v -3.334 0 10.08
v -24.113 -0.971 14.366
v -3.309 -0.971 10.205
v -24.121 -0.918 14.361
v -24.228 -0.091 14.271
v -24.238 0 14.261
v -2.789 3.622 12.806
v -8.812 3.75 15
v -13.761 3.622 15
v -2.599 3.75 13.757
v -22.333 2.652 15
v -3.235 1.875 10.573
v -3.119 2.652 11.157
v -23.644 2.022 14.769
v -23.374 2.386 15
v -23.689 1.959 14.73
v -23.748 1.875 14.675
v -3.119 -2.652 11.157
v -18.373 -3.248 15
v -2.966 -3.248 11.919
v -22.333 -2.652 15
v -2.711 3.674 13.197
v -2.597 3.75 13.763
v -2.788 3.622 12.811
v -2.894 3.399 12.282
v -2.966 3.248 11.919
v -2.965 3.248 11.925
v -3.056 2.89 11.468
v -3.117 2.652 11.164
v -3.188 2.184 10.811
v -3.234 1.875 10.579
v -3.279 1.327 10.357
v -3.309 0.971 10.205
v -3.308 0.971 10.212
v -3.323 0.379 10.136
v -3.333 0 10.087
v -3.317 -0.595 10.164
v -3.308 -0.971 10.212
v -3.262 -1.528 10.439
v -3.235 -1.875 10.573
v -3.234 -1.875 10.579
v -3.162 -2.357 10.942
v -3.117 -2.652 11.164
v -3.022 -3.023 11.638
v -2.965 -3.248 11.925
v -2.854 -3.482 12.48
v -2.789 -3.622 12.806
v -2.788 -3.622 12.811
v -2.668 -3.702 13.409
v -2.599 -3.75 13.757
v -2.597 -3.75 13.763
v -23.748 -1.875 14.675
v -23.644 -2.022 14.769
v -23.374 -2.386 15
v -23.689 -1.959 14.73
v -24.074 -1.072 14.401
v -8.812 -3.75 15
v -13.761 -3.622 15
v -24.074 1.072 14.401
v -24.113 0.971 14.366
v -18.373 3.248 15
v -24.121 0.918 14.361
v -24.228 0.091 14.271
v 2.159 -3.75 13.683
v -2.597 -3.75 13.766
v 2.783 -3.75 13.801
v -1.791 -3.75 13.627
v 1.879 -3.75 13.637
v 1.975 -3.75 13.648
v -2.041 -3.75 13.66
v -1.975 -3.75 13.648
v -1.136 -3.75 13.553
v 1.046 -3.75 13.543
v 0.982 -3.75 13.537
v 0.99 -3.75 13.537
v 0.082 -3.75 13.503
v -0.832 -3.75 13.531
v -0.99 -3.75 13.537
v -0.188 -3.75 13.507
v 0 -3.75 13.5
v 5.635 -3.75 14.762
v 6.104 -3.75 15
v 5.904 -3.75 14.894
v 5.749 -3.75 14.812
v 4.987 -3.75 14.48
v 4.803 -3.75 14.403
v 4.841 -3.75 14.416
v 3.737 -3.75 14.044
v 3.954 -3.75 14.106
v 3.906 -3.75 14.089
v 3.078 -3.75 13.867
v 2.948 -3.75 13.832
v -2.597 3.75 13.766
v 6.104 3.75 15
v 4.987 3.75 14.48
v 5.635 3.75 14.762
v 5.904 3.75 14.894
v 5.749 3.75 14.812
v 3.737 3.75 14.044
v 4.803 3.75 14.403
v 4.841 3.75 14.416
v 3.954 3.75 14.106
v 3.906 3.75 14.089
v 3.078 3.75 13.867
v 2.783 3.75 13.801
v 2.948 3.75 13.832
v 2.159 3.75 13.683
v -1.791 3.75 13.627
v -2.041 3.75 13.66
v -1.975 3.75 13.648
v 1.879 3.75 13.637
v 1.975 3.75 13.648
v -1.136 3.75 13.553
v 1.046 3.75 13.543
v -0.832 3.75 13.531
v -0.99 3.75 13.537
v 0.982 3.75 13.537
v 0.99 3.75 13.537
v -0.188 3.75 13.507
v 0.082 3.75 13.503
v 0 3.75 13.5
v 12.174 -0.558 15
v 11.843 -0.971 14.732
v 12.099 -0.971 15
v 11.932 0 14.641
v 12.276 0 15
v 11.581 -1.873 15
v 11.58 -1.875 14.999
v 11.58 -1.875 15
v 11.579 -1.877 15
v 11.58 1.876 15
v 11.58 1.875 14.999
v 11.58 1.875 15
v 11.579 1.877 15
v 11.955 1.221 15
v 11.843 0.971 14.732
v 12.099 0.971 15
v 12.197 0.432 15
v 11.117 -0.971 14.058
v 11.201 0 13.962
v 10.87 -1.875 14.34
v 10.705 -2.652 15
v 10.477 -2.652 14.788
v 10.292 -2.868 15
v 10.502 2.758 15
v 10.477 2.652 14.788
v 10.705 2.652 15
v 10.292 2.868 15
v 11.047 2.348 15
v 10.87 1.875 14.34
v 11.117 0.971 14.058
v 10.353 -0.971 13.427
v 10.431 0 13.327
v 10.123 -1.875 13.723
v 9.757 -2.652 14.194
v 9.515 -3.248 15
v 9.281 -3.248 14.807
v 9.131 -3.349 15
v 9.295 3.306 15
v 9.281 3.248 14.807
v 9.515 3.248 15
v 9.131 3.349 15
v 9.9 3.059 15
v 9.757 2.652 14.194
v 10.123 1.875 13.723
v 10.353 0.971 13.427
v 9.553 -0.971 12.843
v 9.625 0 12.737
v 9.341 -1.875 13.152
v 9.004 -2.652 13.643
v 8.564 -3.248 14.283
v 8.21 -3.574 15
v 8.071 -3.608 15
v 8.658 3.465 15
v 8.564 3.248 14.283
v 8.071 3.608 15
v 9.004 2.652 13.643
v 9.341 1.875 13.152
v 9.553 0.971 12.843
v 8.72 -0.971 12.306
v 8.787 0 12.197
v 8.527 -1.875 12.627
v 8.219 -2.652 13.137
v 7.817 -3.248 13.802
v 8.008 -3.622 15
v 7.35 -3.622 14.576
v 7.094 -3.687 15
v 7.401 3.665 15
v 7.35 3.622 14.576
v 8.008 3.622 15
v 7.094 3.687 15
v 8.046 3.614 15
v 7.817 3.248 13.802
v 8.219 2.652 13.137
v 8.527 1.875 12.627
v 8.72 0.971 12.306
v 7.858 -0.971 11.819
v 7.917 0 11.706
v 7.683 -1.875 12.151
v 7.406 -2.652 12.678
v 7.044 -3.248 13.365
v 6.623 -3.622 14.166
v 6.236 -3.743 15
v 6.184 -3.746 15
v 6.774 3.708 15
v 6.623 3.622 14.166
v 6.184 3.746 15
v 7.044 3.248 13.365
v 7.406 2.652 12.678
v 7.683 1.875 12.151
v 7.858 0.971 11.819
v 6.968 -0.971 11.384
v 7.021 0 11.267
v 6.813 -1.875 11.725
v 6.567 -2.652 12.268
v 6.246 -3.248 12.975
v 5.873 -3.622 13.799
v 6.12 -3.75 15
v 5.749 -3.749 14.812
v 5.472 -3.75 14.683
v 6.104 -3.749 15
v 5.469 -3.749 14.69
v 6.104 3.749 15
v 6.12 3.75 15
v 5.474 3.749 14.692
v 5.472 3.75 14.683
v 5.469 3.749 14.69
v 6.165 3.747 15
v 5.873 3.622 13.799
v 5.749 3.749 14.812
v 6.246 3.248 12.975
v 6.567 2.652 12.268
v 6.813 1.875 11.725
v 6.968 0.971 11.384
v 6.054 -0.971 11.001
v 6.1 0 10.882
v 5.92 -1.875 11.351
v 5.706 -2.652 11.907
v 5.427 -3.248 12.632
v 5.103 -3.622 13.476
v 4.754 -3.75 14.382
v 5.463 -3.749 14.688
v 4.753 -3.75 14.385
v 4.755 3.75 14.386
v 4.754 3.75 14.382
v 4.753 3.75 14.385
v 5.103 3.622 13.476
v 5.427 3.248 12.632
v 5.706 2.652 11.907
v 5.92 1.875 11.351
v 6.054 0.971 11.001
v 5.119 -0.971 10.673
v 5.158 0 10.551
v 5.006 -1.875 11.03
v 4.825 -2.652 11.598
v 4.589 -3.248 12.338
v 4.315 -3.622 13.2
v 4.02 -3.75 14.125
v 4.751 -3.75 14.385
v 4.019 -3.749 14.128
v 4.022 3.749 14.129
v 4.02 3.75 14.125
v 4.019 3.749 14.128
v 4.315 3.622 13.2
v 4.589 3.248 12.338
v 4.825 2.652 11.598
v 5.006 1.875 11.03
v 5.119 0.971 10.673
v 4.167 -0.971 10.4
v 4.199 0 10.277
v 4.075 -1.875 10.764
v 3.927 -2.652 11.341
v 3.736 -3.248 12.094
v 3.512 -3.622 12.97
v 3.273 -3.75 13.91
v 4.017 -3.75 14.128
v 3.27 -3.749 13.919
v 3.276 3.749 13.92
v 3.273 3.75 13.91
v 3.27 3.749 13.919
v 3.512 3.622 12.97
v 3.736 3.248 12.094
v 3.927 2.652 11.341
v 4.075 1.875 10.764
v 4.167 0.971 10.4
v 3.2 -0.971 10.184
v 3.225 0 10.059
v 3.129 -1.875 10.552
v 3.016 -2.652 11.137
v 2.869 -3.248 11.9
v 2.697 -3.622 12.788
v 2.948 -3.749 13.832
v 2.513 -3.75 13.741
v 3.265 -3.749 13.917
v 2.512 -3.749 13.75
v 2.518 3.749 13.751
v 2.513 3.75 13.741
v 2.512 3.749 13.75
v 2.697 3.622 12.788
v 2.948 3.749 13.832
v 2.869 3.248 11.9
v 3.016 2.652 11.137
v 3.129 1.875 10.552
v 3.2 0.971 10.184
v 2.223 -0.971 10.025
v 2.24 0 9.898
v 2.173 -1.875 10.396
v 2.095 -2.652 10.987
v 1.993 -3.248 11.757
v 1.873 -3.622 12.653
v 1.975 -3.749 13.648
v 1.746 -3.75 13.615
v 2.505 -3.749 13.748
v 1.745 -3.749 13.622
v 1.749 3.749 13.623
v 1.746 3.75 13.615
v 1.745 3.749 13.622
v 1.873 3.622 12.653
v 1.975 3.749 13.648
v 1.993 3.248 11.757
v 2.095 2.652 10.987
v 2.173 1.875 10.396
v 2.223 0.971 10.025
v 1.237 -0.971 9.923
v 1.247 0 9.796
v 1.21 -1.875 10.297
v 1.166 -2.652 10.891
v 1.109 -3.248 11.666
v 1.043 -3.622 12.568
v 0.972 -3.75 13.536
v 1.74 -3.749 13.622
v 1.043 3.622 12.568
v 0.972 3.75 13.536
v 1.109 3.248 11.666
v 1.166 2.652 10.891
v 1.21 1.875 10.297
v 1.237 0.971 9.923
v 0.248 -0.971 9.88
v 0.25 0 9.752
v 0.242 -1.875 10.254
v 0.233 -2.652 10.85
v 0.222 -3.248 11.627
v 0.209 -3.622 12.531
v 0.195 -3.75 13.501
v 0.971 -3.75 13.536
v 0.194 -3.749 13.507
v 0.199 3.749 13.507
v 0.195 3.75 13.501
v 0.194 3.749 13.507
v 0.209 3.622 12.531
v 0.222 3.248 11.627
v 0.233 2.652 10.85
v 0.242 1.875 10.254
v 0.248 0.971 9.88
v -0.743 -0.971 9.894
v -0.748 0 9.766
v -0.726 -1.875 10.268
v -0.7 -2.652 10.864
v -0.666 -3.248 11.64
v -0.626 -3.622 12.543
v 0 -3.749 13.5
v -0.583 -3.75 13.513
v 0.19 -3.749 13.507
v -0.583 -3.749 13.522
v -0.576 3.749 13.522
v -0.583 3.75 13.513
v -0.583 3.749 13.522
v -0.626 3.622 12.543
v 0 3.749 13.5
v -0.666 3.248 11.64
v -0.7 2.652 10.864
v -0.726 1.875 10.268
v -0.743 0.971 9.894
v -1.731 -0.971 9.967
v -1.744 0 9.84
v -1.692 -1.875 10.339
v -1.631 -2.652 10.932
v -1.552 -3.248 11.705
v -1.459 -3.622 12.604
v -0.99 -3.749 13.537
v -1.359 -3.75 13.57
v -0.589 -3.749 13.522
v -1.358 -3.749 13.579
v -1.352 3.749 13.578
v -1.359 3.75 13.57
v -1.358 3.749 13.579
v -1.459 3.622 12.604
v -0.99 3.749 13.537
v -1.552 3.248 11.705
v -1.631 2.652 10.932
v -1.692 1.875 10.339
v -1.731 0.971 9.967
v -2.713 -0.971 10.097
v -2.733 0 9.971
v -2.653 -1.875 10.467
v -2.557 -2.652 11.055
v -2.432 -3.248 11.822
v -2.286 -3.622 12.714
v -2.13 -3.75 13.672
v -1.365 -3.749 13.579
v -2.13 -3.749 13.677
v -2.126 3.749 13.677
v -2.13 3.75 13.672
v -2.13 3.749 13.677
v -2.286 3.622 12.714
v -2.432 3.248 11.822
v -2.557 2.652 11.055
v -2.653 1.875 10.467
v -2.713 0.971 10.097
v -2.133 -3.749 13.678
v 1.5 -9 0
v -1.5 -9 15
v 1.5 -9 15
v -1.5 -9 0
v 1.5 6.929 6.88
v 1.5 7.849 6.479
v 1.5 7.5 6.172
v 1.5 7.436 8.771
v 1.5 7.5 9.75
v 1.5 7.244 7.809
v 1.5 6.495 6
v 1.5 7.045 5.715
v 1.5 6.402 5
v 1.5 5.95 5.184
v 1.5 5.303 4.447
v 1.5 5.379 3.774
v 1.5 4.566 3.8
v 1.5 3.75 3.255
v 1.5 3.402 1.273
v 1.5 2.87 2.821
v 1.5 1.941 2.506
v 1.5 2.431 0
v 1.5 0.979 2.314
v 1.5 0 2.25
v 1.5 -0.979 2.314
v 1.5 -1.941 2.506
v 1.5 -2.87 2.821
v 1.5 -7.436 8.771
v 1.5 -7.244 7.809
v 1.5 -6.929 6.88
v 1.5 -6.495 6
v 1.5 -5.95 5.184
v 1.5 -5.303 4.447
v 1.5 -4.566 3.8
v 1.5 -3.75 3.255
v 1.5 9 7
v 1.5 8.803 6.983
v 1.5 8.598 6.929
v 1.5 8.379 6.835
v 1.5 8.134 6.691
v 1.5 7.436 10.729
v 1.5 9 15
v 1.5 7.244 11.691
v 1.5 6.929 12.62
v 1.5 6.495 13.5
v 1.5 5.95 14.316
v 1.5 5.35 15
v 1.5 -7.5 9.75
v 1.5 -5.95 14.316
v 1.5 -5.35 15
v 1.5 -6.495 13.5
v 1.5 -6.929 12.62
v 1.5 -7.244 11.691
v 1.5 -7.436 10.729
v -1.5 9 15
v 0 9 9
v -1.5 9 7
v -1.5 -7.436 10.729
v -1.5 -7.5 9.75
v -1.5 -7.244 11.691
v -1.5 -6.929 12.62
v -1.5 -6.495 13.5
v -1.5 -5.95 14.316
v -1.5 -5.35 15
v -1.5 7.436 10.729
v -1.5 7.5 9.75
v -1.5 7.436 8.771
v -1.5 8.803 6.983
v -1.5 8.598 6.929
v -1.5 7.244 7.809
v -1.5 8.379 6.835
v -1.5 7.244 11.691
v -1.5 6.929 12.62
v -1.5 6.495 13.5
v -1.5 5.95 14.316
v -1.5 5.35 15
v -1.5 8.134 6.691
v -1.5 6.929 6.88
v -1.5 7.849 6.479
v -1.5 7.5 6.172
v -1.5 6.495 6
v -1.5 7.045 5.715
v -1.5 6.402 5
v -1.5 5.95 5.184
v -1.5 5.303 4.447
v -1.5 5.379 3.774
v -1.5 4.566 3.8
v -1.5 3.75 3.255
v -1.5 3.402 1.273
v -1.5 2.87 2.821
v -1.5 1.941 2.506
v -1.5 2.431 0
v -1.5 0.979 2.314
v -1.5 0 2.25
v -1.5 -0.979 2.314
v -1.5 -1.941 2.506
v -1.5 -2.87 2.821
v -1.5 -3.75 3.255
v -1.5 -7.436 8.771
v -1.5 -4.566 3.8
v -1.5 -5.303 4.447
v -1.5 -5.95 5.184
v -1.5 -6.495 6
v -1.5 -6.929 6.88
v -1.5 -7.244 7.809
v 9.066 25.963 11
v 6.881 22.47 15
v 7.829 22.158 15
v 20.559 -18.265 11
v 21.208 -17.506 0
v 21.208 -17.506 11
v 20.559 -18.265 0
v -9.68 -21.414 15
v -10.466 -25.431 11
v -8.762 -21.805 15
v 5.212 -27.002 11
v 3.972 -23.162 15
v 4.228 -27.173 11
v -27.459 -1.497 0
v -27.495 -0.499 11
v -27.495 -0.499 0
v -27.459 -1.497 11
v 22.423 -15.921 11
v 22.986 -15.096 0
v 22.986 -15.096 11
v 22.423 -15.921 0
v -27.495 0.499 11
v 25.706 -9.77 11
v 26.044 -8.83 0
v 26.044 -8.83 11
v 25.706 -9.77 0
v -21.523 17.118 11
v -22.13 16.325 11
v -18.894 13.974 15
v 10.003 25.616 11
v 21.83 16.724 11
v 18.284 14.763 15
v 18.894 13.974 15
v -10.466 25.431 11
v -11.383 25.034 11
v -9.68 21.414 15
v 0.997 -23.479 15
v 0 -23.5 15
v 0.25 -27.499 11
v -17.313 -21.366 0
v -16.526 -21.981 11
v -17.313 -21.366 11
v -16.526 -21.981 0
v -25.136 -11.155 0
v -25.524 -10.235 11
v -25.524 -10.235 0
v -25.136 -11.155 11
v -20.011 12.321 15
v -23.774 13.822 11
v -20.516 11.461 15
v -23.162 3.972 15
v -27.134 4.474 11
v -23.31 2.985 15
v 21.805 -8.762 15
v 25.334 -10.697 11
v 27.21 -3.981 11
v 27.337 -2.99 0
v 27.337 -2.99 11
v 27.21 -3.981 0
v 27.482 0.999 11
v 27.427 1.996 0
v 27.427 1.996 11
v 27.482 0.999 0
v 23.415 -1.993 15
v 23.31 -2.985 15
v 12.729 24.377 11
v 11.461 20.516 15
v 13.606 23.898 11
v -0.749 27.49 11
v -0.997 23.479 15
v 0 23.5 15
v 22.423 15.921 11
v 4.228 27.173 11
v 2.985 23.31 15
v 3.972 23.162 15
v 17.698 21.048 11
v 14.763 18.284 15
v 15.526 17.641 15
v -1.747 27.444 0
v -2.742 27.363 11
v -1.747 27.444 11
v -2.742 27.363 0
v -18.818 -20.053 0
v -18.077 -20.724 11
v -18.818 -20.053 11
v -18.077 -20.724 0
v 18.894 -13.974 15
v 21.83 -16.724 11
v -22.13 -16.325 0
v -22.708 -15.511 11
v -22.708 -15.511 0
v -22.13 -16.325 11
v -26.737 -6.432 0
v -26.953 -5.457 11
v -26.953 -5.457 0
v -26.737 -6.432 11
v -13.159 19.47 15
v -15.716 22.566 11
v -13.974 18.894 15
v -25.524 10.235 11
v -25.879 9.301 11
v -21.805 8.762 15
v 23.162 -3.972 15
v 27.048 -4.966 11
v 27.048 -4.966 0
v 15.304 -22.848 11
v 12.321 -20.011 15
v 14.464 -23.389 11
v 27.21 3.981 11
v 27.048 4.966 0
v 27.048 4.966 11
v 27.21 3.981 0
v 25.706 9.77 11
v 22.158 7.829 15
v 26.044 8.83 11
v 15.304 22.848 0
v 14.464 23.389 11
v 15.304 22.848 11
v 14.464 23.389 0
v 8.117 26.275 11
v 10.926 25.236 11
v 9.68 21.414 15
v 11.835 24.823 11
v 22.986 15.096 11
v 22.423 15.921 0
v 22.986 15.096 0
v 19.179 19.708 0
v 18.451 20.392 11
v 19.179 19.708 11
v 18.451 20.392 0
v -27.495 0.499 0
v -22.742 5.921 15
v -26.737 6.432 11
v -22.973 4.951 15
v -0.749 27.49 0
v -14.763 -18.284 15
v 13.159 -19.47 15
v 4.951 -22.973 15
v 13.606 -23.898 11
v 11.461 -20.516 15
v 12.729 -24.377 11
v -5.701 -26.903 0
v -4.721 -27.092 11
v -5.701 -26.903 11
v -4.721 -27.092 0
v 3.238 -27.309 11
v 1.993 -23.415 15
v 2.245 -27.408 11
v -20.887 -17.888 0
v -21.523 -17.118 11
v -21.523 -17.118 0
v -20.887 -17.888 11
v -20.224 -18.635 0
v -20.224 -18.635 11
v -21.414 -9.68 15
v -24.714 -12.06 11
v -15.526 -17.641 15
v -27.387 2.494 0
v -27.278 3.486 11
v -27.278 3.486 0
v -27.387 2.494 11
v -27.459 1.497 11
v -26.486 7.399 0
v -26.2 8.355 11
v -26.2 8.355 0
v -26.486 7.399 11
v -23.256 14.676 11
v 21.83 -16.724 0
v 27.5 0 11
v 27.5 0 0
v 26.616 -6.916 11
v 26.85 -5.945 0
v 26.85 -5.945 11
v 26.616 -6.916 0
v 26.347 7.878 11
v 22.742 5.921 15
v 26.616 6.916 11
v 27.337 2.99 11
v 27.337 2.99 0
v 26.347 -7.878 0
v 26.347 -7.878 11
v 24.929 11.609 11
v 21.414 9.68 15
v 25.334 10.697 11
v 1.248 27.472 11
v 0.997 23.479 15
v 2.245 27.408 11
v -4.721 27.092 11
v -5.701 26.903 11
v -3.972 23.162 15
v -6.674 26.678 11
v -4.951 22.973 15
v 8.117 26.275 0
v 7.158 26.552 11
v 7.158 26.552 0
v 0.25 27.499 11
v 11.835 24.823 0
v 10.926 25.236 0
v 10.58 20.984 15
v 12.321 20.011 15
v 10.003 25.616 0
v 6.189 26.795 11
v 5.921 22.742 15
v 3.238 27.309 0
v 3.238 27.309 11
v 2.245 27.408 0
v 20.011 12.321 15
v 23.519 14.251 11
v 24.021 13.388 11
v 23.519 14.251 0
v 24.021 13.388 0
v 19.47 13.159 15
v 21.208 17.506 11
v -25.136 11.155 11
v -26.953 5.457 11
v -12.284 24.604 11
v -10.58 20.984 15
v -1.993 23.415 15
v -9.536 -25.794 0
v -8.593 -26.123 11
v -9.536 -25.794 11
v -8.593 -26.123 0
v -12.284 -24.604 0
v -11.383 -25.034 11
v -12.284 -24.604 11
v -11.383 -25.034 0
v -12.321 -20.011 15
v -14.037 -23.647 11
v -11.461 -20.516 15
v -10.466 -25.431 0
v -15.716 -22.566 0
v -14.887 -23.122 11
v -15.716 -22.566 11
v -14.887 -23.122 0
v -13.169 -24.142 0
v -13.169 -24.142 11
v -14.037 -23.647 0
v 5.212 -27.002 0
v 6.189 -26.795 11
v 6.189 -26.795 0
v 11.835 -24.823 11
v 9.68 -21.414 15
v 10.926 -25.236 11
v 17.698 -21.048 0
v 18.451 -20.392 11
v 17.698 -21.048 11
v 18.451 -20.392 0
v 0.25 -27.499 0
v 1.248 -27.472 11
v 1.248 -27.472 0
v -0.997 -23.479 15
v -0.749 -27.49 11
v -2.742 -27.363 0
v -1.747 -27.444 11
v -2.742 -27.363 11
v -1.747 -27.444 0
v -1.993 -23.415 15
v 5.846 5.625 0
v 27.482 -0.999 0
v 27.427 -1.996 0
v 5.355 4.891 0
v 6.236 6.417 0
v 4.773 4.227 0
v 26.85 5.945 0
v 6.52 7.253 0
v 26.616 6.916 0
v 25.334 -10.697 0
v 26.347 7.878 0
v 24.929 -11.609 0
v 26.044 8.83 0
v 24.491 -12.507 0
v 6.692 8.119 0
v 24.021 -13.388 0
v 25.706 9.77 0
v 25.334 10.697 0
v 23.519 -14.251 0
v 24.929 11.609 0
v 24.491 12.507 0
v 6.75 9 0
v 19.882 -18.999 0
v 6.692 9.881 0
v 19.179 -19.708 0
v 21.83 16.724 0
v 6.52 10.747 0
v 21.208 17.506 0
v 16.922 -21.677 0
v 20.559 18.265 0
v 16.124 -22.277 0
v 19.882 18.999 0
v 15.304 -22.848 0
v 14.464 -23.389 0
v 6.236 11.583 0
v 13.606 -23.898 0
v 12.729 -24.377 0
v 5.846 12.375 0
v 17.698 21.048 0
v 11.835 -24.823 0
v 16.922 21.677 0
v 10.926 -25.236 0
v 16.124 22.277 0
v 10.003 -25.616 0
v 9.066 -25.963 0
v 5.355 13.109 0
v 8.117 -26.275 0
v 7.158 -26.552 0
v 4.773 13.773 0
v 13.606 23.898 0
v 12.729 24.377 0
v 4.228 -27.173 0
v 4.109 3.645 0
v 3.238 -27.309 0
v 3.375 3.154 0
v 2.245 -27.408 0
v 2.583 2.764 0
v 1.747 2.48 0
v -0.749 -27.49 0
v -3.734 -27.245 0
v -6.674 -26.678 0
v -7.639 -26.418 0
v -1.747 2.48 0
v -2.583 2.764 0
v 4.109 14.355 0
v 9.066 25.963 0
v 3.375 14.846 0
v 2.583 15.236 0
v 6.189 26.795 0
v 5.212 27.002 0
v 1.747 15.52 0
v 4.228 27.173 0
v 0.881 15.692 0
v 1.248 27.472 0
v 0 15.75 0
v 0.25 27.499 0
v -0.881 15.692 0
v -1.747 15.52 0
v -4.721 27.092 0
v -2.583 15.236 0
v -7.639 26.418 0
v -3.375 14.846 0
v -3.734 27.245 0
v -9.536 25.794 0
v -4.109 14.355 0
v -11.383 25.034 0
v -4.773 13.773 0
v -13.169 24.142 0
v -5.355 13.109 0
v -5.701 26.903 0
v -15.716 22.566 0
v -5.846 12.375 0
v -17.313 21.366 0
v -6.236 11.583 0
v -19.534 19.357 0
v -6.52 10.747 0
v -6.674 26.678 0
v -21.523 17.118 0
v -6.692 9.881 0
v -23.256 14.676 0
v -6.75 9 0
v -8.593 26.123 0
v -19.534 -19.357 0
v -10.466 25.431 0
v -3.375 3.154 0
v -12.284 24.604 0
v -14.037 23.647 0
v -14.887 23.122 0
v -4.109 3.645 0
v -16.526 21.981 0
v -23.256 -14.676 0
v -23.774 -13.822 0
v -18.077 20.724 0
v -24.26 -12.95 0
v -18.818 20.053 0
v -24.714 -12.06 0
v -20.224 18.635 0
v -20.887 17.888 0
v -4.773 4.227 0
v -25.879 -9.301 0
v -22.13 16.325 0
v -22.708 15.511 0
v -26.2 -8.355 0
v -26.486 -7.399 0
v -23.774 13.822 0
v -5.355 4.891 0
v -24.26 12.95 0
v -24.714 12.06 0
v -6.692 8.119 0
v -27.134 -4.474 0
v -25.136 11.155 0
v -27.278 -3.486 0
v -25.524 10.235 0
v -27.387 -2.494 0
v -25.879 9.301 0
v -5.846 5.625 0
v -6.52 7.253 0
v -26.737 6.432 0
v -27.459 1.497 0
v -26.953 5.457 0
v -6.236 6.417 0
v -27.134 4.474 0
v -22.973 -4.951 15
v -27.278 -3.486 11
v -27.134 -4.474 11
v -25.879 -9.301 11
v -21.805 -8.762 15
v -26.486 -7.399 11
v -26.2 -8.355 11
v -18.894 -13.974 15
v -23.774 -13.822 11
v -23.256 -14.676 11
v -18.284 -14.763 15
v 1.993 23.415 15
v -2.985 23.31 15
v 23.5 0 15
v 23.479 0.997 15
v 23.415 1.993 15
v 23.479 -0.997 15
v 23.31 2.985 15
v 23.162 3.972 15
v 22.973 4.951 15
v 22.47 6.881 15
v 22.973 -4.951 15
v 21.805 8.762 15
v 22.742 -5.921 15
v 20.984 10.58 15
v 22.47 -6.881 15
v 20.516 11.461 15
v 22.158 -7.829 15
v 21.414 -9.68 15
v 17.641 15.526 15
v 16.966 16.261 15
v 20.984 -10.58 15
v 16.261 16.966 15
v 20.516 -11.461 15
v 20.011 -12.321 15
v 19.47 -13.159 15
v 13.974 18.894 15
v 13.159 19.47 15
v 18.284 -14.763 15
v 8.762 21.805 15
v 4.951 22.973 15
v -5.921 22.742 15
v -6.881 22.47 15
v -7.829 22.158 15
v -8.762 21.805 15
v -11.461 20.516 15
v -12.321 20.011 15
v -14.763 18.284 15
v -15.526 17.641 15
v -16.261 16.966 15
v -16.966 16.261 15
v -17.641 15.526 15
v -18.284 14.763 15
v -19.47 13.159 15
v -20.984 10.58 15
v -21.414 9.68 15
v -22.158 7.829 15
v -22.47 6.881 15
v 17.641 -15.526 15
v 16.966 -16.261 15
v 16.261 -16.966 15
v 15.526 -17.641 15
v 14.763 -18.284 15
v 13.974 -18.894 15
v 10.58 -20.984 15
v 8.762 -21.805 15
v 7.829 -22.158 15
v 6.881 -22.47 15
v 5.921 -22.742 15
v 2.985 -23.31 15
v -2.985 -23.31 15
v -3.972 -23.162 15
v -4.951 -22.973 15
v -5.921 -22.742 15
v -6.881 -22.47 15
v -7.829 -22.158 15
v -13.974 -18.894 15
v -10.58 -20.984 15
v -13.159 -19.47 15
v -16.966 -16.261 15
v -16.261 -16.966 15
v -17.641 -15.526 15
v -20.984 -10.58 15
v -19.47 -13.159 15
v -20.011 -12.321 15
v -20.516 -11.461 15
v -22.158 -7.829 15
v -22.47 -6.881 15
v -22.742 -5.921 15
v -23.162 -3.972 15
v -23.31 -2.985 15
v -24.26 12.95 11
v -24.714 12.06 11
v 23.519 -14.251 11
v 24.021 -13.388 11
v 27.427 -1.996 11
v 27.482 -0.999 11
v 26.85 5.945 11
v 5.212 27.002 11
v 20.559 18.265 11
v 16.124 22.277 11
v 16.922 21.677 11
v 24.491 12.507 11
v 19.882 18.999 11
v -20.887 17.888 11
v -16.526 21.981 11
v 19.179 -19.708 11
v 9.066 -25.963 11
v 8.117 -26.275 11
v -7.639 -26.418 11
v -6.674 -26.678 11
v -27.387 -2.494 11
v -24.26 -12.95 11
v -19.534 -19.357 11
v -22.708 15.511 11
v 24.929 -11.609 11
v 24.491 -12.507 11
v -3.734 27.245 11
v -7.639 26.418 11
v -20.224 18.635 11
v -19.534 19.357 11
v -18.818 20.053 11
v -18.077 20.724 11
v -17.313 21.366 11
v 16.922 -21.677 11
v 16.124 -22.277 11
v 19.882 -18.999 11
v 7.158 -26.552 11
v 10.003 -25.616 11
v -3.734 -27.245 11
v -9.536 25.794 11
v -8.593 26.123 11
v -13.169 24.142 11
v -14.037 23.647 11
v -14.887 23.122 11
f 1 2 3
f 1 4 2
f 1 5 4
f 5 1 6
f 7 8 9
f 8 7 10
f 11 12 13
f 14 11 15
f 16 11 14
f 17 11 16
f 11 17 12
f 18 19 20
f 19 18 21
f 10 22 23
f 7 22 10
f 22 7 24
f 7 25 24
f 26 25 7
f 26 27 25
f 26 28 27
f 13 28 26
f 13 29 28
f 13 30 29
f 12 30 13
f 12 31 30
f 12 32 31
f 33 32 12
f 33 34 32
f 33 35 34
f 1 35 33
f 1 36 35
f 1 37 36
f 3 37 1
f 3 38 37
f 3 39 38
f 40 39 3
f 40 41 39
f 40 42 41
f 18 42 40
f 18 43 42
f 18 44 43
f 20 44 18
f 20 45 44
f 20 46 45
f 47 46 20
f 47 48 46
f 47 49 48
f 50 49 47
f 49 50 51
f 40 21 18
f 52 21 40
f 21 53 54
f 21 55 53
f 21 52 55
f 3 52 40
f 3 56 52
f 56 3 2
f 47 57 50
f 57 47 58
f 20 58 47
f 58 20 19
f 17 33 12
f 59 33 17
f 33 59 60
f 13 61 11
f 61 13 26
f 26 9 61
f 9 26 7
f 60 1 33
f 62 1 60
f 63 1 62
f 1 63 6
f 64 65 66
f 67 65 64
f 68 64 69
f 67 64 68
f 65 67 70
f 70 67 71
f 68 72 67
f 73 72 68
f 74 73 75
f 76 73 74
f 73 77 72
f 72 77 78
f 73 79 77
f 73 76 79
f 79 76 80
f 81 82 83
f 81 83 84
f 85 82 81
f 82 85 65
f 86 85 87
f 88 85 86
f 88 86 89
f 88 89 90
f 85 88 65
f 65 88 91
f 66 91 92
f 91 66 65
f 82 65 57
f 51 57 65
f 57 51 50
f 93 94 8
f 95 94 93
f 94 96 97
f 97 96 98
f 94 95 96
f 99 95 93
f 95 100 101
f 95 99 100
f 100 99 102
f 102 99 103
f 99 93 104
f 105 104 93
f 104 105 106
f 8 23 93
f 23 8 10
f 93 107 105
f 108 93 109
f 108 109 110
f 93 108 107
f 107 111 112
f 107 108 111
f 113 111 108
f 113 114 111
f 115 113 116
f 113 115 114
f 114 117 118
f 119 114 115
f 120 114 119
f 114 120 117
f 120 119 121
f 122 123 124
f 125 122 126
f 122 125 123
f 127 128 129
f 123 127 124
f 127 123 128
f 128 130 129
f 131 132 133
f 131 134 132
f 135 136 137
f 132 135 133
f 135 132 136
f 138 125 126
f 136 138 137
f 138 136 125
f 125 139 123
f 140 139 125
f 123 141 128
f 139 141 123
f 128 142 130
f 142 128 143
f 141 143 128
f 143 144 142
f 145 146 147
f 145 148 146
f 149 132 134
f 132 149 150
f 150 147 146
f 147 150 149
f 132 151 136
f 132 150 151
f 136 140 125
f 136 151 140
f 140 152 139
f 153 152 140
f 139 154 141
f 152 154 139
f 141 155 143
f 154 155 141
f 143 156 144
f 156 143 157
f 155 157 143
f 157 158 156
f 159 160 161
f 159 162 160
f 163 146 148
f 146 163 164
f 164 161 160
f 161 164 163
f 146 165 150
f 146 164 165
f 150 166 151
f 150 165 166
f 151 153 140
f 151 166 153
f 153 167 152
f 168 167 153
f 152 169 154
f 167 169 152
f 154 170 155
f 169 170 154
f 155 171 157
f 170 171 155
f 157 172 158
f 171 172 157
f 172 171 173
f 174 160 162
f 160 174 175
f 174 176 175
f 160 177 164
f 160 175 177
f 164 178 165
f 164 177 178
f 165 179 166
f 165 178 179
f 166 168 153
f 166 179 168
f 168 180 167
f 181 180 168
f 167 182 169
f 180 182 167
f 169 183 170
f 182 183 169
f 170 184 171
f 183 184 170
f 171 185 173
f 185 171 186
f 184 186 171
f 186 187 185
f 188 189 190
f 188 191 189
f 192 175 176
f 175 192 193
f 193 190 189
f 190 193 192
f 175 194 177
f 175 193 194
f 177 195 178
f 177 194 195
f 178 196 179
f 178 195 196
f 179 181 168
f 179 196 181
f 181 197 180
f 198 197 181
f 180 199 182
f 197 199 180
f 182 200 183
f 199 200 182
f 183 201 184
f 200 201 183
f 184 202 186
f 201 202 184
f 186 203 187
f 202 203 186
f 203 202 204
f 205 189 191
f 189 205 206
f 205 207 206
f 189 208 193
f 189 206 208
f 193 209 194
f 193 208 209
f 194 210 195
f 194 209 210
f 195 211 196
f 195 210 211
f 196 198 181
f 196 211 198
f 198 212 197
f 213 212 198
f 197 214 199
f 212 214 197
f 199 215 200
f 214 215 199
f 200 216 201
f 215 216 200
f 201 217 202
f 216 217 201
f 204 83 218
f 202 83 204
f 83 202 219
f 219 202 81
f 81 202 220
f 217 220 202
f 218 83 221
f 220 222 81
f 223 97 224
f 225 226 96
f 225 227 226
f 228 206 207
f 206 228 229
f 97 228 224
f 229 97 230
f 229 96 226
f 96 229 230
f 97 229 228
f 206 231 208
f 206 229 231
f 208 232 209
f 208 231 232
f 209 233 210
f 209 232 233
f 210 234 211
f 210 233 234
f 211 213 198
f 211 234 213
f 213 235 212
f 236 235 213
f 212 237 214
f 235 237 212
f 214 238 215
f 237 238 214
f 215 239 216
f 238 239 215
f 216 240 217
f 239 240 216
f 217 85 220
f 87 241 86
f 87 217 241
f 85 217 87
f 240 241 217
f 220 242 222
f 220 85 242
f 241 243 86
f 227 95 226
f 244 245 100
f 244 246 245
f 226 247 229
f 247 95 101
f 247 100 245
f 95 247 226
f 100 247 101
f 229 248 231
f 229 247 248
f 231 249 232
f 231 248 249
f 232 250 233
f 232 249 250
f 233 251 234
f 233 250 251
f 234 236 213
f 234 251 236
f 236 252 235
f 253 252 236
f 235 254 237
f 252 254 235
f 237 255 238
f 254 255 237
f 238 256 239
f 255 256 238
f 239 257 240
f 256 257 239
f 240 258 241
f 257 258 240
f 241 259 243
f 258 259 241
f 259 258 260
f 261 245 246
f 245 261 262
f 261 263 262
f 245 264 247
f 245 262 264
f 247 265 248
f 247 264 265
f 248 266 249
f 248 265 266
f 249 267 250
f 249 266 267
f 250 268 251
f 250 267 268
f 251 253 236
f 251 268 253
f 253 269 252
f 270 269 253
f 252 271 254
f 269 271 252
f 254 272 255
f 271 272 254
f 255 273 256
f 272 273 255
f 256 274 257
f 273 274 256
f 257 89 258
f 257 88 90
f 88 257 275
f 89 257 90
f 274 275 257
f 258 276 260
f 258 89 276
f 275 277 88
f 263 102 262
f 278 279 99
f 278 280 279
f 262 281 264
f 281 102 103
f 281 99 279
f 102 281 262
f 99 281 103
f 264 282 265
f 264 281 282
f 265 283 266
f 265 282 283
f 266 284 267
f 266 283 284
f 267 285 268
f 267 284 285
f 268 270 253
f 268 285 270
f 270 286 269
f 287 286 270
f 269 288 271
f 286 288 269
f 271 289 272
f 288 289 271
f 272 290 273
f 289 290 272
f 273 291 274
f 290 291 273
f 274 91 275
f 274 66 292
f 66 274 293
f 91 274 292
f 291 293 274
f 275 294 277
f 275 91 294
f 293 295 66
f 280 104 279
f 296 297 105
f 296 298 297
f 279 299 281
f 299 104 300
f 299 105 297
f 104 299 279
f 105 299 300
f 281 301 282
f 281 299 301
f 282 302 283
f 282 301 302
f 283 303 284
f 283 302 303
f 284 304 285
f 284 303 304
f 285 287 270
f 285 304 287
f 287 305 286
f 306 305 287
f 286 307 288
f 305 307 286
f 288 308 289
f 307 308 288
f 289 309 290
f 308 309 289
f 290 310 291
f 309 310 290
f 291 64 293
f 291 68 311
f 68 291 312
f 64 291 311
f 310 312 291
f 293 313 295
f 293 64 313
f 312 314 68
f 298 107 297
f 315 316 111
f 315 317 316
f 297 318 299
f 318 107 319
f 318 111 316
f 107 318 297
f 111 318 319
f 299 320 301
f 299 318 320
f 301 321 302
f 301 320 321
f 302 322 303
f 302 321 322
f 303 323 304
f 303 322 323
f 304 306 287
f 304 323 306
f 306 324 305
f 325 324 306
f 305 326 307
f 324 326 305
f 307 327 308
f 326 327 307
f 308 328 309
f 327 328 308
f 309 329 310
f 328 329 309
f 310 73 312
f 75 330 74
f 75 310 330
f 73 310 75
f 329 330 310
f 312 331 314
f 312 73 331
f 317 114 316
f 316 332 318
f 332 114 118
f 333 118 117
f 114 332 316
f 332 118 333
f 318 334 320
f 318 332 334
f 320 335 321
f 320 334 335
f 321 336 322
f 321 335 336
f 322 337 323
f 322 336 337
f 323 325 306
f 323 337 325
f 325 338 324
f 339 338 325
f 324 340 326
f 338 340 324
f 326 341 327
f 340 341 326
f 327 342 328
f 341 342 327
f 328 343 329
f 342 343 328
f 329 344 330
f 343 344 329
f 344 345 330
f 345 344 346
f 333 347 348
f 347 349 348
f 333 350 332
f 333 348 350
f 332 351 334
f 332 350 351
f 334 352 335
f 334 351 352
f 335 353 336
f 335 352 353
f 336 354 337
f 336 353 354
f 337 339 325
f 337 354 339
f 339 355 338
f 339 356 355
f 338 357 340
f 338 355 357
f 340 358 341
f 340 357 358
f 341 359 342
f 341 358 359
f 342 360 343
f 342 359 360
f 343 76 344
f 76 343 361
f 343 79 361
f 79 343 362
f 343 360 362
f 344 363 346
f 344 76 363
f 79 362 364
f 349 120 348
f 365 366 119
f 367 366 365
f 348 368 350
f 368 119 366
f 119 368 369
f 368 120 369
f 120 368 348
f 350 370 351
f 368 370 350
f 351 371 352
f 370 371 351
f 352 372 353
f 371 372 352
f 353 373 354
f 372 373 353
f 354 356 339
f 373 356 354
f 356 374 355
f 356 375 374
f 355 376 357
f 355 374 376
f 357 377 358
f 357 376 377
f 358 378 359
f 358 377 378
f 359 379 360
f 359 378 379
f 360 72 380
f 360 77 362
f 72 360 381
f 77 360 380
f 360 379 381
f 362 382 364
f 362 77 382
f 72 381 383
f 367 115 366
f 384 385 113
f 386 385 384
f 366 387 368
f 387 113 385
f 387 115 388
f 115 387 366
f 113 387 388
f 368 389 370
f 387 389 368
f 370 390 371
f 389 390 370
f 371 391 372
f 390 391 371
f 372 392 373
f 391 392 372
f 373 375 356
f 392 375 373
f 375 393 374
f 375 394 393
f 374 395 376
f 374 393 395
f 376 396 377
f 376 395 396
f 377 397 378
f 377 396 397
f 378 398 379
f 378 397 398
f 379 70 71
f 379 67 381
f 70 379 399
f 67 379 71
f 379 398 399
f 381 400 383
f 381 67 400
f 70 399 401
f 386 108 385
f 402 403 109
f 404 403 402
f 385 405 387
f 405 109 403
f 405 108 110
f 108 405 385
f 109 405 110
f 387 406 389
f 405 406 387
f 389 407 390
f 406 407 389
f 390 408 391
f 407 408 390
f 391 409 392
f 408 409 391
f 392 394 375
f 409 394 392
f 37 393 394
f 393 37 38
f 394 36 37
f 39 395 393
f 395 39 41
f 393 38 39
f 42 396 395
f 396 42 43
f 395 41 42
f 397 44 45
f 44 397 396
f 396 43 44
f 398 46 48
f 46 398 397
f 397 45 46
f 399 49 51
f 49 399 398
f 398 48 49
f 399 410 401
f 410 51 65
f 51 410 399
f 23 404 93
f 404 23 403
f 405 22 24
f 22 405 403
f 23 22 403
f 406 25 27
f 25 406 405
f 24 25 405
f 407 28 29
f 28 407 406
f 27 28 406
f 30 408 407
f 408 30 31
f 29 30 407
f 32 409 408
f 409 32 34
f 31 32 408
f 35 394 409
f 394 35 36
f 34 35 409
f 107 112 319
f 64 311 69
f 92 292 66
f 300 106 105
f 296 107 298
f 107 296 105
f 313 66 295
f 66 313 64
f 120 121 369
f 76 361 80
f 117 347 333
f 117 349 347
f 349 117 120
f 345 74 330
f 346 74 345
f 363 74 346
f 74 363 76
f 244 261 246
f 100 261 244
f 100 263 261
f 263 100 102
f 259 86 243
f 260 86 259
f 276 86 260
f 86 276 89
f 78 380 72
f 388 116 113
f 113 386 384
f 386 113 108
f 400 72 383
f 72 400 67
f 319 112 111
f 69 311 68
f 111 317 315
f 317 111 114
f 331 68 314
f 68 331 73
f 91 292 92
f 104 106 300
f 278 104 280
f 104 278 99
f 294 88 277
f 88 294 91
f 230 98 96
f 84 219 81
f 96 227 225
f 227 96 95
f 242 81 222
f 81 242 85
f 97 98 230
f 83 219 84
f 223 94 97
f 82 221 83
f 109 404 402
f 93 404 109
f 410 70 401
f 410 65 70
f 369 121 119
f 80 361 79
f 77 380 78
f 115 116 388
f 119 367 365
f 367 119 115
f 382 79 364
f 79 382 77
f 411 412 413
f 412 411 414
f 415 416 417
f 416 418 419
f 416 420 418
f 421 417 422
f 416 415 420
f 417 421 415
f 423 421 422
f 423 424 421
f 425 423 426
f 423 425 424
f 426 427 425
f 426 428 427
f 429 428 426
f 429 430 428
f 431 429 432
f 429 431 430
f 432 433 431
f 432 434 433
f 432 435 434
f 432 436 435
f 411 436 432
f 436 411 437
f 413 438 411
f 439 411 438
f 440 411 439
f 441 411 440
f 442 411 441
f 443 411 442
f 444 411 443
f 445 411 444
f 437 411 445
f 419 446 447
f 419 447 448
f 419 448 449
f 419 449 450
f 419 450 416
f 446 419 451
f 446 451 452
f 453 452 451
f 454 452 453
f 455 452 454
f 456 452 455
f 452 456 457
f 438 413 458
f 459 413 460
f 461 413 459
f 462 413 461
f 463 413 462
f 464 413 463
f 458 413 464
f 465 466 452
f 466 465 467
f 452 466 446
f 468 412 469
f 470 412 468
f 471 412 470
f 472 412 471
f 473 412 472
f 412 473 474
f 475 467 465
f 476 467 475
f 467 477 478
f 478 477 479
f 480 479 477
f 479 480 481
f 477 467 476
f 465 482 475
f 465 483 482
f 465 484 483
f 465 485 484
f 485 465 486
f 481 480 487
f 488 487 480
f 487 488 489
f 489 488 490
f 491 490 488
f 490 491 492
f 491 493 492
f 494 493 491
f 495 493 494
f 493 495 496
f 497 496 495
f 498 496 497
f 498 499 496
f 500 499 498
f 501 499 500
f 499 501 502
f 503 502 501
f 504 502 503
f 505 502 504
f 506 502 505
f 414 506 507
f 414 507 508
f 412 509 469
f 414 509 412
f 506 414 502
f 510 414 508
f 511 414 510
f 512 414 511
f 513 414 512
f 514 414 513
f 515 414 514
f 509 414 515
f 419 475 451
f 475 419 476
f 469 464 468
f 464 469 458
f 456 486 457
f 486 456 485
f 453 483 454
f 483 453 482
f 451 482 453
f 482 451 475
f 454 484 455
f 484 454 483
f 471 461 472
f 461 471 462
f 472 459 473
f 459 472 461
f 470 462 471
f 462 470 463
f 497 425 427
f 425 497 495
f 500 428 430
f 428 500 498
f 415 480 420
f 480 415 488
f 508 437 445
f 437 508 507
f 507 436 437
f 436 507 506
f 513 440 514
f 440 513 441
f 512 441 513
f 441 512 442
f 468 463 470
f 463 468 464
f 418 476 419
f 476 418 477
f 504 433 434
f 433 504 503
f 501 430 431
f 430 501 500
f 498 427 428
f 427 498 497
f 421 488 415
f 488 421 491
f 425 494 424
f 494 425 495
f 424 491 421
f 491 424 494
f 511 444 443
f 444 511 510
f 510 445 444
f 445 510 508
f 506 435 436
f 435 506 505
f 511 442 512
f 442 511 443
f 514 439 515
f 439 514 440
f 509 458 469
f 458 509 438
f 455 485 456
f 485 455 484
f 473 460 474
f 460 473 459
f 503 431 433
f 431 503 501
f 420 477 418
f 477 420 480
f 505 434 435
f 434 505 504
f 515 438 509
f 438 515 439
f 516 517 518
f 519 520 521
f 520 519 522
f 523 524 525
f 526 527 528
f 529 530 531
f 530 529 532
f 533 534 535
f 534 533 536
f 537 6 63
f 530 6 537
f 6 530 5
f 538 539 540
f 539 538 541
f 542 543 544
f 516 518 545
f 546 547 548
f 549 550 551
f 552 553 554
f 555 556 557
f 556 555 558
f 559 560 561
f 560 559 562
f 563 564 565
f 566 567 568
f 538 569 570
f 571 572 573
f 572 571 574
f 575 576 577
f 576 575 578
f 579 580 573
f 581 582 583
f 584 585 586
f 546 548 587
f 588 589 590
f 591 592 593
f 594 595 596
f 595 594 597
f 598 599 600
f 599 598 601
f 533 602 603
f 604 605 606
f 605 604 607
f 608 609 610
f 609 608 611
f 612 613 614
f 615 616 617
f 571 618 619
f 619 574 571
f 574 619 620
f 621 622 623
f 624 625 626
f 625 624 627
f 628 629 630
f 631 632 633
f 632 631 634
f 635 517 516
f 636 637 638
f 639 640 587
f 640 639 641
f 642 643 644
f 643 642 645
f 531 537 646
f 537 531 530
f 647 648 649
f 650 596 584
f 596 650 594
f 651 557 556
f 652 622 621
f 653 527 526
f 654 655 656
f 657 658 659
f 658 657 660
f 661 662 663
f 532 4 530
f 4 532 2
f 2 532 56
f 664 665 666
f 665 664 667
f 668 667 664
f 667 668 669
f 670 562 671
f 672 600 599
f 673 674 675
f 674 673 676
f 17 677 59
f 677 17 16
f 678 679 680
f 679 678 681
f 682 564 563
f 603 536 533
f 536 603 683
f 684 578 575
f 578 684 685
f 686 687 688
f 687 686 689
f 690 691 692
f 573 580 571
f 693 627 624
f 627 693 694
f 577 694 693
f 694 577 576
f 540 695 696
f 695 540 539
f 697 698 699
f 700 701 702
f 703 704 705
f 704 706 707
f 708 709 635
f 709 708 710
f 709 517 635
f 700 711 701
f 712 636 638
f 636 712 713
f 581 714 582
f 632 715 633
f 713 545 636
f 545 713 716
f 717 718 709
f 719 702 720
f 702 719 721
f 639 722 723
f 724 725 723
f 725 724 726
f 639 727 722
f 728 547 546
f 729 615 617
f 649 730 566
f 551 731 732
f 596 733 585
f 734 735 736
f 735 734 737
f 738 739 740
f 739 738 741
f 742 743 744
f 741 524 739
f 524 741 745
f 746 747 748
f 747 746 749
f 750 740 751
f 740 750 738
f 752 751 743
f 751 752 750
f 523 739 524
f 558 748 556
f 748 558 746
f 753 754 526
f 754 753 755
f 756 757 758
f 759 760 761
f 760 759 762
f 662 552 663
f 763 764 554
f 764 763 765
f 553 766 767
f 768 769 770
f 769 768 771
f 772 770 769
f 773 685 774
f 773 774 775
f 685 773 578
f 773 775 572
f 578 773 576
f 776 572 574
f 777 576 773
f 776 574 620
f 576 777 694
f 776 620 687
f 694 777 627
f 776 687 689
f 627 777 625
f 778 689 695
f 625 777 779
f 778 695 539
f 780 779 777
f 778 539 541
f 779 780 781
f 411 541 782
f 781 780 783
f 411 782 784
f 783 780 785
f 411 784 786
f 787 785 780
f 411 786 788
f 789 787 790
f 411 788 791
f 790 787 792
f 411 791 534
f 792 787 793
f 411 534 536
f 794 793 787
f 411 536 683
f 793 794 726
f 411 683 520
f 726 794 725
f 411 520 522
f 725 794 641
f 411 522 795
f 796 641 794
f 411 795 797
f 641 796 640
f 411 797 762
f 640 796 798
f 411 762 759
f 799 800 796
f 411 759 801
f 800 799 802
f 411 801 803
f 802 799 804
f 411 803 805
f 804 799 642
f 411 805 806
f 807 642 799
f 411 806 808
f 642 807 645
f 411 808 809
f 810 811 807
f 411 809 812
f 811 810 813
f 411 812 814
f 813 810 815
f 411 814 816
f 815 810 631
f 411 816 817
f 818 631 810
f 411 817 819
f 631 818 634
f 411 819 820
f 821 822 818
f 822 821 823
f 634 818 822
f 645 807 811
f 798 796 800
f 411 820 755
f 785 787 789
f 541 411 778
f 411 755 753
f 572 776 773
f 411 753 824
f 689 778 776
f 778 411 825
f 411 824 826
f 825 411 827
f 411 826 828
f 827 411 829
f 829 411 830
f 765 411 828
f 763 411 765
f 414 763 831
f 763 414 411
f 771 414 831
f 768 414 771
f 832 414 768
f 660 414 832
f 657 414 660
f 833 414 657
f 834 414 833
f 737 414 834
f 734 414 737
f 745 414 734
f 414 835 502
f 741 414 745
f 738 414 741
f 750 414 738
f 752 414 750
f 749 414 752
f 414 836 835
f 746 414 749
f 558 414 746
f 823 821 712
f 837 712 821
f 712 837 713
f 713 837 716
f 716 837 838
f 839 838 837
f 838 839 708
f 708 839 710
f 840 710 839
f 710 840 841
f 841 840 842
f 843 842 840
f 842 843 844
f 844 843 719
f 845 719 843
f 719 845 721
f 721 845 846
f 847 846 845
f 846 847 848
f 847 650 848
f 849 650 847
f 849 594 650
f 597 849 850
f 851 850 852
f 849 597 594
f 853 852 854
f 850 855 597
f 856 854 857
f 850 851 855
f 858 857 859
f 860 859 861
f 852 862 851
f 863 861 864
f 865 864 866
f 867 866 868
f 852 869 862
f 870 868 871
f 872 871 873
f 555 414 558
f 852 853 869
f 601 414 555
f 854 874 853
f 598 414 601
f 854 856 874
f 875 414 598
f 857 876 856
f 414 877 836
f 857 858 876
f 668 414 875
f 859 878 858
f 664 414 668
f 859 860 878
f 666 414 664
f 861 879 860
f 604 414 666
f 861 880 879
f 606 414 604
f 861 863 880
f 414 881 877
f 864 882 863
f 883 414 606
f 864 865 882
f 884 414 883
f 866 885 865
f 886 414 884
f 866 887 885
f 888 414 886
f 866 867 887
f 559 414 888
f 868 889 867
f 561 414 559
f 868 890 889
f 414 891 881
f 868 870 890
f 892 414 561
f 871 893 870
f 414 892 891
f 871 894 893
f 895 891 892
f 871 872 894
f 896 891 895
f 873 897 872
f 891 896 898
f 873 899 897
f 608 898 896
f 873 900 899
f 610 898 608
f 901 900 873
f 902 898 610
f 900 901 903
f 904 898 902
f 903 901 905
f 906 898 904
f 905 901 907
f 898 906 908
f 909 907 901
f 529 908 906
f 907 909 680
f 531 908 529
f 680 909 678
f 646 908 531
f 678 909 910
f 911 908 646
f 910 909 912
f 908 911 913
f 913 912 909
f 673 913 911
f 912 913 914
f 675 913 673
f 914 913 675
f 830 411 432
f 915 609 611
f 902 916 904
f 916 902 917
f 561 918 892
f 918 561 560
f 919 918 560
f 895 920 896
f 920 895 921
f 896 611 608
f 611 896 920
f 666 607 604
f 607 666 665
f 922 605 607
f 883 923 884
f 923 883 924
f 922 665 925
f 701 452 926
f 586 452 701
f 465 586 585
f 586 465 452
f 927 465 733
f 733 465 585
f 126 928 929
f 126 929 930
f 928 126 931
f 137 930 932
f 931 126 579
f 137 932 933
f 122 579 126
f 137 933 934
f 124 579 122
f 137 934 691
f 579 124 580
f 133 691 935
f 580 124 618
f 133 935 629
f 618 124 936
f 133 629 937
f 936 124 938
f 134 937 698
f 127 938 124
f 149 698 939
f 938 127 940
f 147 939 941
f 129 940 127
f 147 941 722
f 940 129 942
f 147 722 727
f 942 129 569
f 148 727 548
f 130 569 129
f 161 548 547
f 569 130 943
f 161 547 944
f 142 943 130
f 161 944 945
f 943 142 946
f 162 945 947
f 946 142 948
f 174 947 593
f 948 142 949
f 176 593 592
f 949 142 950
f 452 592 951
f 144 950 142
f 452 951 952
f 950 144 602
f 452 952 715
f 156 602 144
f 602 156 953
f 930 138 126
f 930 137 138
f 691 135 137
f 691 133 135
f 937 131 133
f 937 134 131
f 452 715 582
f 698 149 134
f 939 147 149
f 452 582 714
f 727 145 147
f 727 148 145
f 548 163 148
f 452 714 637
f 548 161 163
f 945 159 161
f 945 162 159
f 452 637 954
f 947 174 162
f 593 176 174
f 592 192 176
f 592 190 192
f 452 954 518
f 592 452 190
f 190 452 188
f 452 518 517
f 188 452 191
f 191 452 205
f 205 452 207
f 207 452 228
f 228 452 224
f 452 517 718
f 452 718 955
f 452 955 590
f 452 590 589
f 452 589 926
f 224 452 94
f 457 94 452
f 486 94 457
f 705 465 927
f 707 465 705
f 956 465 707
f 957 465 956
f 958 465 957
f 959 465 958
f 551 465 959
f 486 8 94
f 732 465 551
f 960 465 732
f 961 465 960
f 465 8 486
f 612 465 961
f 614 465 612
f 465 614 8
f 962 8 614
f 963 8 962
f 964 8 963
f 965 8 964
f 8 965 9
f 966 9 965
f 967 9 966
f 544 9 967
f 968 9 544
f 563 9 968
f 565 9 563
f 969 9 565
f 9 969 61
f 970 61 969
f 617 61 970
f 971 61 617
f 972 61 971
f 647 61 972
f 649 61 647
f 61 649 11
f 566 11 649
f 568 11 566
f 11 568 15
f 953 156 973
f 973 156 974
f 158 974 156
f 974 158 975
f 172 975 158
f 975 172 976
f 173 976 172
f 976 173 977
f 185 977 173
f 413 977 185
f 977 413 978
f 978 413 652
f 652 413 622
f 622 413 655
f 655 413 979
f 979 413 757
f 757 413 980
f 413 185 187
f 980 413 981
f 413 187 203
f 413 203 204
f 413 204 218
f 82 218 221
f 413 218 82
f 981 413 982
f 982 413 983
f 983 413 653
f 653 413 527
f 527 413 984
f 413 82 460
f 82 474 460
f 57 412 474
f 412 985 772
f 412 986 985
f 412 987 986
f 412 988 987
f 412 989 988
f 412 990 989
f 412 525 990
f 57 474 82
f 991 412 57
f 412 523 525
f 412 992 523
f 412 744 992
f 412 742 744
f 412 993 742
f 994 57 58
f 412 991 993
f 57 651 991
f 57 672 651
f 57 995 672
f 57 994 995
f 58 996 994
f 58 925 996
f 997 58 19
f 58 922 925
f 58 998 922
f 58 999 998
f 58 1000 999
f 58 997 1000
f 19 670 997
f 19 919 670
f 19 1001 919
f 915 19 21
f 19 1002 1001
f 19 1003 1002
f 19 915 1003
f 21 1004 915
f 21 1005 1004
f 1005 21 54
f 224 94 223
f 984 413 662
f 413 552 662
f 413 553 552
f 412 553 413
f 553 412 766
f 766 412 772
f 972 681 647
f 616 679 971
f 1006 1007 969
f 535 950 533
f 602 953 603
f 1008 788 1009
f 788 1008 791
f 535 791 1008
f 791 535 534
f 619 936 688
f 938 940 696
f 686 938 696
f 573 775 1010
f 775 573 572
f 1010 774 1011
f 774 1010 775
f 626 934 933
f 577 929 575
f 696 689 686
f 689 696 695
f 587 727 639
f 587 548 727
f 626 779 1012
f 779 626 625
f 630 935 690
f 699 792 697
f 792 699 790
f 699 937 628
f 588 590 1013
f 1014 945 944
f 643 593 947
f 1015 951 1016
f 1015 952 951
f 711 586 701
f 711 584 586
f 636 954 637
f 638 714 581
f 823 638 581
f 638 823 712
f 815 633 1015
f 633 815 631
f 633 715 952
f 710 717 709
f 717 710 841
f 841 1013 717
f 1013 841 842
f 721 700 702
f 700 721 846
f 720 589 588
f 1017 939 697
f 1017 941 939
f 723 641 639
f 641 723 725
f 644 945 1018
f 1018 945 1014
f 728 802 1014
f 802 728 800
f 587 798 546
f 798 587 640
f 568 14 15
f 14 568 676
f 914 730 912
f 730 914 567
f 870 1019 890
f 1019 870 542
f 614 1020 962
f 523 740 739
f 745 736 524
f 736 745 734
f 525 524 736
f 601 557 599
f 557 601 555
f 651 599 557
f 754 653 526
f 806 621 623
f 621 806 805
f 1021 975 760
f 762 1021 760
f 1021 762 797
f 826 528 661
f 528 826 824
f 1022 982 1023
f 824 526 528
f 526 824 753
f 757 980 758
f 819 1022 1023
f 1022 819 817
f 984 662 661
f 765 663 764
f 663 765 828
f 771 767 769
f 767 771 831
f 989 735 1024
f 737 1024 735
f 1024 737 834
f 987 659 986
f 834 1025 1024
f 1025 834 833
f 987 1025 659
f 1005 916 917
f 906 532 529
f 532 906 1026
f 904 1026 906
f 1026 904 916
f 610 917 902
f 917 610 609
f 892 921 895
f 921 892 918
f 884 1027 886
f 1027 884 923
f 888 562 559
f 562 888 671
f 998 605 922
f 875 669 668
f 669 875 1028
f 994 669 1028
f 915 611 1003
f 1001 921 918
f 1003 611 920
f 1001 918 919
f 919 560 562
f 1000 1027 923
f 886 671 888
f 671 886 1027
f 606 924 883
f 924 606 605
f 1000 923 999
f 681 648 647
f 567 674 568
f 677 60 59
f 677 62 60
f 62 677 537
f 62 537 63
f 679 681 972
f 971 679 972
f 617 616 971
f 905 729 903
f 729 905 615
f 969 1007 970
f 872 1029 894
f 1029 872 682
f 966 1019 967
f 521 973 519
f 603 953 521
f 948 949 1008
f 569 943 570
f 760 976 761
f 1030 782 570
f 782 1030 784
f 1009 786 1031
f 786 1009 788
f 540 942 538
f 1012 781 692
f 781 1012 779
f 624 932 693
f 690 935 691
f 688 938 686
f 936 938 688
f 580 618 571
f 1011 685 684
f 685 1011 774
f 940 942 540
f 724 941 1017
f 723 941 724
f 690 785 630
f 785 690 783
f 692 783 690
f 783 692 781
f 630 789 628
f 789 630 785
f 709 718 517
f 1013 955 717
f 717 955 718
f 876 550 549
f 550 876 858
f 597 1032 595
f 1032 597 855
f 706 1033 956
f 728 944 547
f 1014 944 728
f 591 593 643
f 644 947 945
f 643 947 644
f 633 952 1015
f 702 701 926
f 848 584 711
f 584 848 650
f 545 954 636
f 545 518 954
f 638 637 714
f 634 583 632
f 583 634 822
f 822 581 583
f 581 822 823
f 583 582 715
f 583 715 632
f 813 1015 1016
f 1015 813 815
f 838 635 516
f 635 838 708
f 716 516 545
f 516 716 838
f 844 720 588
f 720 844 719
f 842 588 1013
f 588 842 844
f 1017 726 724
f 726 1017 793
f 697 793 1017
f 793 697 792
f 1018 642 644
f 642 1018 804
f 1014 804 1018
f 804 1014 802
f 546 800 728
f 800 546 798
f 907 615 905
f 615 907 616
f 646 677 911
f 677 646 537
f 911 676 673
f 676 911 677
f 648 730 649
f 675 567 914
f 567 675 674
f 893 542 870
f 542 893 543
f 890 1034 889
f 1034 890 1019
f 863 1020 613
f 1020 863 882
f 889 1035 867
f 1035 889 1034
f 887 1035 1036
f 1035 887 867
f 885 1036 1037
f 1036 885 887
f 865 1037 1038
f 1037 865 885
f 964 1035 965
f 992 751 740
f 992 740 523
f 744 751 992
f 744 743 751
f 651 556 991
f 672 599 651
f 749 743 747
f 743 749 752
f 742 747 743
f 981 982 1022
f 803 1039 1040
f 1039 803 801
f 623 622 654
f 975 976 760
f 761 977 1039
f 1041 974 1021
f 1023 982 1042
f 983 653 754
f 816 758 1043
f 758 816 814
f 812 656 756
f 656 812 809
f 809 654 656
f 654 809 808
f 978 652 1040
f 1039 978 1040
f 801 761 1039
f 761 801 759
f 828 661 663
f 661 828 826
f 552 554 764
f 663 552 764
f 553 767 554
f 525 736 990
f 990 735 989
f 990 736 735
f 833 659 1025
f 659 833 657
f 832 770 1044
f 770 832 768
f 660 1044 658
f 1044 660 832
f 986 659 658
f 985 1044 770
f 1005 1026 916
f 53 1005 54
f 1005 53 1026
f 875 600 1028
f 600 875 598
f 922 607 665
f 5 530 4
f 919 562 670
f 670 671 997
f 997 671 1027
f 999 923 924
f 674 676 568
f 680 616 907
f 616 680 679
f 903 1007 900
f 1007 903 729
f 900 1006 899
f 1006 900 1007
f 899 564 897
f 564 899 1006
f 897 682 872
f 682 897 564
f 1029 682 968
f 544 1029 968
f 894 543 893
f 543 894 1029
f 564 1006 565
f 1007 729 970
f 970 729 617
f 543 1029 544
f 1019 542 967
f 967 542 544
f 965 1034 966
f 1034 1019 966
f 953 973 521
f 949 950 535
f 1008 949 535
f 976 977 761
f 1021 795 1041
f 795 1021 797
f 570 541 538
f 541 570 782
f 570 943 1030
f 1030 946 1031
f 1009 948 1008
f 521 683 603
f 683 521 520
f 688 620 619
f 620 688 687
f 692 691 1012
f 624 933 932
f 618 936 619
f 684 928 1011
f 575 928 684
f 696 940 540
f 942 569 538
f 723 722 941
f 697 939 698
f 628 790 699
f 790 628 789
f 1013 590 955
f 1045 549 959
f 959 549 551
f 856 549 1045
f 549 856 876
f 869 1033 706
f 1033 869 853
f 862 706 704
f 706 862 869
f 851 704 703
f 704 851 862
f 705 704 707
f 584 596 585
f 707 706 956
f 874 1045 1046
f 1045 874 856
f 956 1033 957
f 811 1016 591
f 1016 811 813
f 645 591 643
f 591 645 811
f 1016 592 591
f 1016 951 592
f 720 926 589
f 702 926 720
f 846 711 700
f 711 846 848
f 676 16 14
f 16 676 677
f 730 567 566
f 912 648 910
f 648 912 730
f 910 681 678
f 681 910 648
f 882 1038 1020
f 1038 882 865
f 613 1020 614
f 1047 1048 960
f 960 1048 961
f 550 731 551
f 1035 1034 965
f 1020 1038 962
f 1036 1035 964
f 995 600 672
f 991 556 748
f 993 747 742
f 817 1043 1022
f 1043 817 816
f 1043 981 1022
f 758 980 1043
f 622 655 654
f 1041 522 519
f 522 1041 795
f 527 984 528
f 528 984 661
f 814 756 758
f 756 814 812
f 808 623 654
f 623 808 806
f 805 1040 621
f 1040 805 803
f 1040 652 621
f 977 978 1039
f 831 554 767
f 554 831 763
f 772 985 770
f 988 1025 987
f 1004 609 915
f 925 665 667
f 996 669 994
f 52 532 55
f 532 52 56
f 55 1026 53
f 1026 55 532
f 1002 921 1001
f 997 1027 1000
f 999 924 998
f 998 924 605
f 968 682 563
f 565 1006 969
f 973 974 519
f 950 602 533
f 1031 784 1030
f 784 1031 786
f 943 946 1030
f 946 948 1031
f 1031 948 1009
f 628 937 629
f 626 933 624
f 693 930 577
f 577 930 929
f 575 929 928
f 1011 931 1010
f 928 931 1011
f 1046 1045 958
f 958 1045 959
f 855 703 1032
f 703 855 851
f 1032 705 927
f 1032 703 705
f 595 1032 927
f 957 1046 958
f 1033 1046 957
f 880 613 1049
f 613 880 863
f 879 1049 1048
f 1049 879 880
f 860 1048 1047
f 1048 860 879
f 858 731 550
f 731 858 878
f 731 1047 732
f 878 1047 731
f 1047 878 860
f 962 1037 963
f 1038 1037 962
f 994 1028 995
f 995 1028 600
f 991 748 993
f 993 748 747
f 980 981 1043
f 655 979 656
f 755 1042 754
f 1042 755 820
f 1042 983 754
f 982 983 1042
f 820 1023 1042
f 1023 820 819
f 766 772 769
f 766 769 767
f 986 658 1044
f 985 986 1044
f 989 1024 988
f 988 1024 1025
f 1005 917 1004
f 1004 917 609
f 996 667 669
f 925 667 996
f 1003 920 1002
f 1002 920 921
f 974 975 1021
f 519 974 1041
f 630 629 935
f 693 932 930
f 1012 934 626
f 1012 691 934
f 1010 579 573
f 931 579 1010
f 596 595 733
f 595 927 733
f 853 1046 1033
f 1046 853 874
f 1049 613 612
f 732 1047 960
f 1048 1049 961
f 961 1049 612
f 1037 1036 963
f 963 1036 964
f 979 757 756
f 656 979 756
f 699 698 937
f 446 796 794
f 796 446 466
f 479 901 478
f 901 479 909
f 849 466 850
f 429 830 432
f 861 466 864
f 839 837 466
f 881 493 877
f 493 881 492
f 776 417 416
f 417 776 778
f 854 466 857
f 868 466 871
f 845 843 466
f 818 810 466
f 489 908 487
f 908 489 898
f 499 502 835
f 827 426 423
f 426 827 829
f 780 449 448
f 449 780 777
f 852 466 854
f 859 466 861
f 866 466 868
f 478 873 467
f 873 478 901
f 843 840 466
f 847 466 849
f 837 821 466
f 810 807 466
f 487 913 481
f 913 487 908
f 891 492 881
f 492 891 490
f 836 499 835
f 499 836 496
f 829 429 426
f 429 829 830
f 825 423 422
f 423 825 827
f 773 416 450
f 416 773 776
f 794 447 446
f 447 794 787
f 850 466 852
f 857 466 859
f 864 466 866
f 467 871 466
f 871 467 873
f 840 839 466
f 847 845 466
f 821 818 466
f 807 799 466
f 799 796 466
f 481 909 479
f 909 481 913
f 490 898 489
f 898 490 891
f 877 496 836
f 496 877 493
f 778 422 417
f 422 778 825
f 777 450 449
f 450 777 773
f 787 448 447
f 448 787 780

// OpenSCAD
$fa=.01;
$fs=1;


d1 = 6.5+1;
d2 = 32+2;

angle = atan2(50,250);

foot_h = 15;
zip_thickness = 1+.5;
zip_width=2.5+.5;
zip_path_d = 15;
chamfer=4;

module torus(major_r, minor_r){
    rotate_extrude() translate([major_r,0,0]) circle(r=minor_r);
}

module ring(){
    //%cylinder(d=d2,h=d1, center=true);
    torus(d2/2-d1/2, d1/2);
    cylinder(d=d2-d1,h=d1, center=true);
    rotate([90,0,-90-angle]){
        translate([d2/2-d1/2,0,0])cylinder(d=d1,h=99);
        translate([0,0,99/2]) cube([d2-d1,d1,99], center=true);
    }
}
module main(){
    foot_stick_in = .7*d1;
    difference(){
        hull(){

            cylinder(d=55, h=foot_h-chamfer);
            cylinder(d=55-2*chamfer, h=foot_h);
        }
        translate([0,0,d2/2+foot_h-foot_stick_in]) rotate([90,0,0]) ring();

        #translate([0,0,foot_h-zip_path_d/2+d1-foot_stick_in]) rotate([90,0,90]) difference(){
            cube([zip_path_d+2*zip_thickness,zip_path_d+2*zip_thickness+99,zip_width], center=true);
            cylinder(d=zip_path_d, h=zip_width+2, center=true);
        }
        translate([0,zip_path_d/2+zip_thickness,-1]) cylinder(d1=15,d2=0,h=2/3*foot_h);
    }
}


main();
